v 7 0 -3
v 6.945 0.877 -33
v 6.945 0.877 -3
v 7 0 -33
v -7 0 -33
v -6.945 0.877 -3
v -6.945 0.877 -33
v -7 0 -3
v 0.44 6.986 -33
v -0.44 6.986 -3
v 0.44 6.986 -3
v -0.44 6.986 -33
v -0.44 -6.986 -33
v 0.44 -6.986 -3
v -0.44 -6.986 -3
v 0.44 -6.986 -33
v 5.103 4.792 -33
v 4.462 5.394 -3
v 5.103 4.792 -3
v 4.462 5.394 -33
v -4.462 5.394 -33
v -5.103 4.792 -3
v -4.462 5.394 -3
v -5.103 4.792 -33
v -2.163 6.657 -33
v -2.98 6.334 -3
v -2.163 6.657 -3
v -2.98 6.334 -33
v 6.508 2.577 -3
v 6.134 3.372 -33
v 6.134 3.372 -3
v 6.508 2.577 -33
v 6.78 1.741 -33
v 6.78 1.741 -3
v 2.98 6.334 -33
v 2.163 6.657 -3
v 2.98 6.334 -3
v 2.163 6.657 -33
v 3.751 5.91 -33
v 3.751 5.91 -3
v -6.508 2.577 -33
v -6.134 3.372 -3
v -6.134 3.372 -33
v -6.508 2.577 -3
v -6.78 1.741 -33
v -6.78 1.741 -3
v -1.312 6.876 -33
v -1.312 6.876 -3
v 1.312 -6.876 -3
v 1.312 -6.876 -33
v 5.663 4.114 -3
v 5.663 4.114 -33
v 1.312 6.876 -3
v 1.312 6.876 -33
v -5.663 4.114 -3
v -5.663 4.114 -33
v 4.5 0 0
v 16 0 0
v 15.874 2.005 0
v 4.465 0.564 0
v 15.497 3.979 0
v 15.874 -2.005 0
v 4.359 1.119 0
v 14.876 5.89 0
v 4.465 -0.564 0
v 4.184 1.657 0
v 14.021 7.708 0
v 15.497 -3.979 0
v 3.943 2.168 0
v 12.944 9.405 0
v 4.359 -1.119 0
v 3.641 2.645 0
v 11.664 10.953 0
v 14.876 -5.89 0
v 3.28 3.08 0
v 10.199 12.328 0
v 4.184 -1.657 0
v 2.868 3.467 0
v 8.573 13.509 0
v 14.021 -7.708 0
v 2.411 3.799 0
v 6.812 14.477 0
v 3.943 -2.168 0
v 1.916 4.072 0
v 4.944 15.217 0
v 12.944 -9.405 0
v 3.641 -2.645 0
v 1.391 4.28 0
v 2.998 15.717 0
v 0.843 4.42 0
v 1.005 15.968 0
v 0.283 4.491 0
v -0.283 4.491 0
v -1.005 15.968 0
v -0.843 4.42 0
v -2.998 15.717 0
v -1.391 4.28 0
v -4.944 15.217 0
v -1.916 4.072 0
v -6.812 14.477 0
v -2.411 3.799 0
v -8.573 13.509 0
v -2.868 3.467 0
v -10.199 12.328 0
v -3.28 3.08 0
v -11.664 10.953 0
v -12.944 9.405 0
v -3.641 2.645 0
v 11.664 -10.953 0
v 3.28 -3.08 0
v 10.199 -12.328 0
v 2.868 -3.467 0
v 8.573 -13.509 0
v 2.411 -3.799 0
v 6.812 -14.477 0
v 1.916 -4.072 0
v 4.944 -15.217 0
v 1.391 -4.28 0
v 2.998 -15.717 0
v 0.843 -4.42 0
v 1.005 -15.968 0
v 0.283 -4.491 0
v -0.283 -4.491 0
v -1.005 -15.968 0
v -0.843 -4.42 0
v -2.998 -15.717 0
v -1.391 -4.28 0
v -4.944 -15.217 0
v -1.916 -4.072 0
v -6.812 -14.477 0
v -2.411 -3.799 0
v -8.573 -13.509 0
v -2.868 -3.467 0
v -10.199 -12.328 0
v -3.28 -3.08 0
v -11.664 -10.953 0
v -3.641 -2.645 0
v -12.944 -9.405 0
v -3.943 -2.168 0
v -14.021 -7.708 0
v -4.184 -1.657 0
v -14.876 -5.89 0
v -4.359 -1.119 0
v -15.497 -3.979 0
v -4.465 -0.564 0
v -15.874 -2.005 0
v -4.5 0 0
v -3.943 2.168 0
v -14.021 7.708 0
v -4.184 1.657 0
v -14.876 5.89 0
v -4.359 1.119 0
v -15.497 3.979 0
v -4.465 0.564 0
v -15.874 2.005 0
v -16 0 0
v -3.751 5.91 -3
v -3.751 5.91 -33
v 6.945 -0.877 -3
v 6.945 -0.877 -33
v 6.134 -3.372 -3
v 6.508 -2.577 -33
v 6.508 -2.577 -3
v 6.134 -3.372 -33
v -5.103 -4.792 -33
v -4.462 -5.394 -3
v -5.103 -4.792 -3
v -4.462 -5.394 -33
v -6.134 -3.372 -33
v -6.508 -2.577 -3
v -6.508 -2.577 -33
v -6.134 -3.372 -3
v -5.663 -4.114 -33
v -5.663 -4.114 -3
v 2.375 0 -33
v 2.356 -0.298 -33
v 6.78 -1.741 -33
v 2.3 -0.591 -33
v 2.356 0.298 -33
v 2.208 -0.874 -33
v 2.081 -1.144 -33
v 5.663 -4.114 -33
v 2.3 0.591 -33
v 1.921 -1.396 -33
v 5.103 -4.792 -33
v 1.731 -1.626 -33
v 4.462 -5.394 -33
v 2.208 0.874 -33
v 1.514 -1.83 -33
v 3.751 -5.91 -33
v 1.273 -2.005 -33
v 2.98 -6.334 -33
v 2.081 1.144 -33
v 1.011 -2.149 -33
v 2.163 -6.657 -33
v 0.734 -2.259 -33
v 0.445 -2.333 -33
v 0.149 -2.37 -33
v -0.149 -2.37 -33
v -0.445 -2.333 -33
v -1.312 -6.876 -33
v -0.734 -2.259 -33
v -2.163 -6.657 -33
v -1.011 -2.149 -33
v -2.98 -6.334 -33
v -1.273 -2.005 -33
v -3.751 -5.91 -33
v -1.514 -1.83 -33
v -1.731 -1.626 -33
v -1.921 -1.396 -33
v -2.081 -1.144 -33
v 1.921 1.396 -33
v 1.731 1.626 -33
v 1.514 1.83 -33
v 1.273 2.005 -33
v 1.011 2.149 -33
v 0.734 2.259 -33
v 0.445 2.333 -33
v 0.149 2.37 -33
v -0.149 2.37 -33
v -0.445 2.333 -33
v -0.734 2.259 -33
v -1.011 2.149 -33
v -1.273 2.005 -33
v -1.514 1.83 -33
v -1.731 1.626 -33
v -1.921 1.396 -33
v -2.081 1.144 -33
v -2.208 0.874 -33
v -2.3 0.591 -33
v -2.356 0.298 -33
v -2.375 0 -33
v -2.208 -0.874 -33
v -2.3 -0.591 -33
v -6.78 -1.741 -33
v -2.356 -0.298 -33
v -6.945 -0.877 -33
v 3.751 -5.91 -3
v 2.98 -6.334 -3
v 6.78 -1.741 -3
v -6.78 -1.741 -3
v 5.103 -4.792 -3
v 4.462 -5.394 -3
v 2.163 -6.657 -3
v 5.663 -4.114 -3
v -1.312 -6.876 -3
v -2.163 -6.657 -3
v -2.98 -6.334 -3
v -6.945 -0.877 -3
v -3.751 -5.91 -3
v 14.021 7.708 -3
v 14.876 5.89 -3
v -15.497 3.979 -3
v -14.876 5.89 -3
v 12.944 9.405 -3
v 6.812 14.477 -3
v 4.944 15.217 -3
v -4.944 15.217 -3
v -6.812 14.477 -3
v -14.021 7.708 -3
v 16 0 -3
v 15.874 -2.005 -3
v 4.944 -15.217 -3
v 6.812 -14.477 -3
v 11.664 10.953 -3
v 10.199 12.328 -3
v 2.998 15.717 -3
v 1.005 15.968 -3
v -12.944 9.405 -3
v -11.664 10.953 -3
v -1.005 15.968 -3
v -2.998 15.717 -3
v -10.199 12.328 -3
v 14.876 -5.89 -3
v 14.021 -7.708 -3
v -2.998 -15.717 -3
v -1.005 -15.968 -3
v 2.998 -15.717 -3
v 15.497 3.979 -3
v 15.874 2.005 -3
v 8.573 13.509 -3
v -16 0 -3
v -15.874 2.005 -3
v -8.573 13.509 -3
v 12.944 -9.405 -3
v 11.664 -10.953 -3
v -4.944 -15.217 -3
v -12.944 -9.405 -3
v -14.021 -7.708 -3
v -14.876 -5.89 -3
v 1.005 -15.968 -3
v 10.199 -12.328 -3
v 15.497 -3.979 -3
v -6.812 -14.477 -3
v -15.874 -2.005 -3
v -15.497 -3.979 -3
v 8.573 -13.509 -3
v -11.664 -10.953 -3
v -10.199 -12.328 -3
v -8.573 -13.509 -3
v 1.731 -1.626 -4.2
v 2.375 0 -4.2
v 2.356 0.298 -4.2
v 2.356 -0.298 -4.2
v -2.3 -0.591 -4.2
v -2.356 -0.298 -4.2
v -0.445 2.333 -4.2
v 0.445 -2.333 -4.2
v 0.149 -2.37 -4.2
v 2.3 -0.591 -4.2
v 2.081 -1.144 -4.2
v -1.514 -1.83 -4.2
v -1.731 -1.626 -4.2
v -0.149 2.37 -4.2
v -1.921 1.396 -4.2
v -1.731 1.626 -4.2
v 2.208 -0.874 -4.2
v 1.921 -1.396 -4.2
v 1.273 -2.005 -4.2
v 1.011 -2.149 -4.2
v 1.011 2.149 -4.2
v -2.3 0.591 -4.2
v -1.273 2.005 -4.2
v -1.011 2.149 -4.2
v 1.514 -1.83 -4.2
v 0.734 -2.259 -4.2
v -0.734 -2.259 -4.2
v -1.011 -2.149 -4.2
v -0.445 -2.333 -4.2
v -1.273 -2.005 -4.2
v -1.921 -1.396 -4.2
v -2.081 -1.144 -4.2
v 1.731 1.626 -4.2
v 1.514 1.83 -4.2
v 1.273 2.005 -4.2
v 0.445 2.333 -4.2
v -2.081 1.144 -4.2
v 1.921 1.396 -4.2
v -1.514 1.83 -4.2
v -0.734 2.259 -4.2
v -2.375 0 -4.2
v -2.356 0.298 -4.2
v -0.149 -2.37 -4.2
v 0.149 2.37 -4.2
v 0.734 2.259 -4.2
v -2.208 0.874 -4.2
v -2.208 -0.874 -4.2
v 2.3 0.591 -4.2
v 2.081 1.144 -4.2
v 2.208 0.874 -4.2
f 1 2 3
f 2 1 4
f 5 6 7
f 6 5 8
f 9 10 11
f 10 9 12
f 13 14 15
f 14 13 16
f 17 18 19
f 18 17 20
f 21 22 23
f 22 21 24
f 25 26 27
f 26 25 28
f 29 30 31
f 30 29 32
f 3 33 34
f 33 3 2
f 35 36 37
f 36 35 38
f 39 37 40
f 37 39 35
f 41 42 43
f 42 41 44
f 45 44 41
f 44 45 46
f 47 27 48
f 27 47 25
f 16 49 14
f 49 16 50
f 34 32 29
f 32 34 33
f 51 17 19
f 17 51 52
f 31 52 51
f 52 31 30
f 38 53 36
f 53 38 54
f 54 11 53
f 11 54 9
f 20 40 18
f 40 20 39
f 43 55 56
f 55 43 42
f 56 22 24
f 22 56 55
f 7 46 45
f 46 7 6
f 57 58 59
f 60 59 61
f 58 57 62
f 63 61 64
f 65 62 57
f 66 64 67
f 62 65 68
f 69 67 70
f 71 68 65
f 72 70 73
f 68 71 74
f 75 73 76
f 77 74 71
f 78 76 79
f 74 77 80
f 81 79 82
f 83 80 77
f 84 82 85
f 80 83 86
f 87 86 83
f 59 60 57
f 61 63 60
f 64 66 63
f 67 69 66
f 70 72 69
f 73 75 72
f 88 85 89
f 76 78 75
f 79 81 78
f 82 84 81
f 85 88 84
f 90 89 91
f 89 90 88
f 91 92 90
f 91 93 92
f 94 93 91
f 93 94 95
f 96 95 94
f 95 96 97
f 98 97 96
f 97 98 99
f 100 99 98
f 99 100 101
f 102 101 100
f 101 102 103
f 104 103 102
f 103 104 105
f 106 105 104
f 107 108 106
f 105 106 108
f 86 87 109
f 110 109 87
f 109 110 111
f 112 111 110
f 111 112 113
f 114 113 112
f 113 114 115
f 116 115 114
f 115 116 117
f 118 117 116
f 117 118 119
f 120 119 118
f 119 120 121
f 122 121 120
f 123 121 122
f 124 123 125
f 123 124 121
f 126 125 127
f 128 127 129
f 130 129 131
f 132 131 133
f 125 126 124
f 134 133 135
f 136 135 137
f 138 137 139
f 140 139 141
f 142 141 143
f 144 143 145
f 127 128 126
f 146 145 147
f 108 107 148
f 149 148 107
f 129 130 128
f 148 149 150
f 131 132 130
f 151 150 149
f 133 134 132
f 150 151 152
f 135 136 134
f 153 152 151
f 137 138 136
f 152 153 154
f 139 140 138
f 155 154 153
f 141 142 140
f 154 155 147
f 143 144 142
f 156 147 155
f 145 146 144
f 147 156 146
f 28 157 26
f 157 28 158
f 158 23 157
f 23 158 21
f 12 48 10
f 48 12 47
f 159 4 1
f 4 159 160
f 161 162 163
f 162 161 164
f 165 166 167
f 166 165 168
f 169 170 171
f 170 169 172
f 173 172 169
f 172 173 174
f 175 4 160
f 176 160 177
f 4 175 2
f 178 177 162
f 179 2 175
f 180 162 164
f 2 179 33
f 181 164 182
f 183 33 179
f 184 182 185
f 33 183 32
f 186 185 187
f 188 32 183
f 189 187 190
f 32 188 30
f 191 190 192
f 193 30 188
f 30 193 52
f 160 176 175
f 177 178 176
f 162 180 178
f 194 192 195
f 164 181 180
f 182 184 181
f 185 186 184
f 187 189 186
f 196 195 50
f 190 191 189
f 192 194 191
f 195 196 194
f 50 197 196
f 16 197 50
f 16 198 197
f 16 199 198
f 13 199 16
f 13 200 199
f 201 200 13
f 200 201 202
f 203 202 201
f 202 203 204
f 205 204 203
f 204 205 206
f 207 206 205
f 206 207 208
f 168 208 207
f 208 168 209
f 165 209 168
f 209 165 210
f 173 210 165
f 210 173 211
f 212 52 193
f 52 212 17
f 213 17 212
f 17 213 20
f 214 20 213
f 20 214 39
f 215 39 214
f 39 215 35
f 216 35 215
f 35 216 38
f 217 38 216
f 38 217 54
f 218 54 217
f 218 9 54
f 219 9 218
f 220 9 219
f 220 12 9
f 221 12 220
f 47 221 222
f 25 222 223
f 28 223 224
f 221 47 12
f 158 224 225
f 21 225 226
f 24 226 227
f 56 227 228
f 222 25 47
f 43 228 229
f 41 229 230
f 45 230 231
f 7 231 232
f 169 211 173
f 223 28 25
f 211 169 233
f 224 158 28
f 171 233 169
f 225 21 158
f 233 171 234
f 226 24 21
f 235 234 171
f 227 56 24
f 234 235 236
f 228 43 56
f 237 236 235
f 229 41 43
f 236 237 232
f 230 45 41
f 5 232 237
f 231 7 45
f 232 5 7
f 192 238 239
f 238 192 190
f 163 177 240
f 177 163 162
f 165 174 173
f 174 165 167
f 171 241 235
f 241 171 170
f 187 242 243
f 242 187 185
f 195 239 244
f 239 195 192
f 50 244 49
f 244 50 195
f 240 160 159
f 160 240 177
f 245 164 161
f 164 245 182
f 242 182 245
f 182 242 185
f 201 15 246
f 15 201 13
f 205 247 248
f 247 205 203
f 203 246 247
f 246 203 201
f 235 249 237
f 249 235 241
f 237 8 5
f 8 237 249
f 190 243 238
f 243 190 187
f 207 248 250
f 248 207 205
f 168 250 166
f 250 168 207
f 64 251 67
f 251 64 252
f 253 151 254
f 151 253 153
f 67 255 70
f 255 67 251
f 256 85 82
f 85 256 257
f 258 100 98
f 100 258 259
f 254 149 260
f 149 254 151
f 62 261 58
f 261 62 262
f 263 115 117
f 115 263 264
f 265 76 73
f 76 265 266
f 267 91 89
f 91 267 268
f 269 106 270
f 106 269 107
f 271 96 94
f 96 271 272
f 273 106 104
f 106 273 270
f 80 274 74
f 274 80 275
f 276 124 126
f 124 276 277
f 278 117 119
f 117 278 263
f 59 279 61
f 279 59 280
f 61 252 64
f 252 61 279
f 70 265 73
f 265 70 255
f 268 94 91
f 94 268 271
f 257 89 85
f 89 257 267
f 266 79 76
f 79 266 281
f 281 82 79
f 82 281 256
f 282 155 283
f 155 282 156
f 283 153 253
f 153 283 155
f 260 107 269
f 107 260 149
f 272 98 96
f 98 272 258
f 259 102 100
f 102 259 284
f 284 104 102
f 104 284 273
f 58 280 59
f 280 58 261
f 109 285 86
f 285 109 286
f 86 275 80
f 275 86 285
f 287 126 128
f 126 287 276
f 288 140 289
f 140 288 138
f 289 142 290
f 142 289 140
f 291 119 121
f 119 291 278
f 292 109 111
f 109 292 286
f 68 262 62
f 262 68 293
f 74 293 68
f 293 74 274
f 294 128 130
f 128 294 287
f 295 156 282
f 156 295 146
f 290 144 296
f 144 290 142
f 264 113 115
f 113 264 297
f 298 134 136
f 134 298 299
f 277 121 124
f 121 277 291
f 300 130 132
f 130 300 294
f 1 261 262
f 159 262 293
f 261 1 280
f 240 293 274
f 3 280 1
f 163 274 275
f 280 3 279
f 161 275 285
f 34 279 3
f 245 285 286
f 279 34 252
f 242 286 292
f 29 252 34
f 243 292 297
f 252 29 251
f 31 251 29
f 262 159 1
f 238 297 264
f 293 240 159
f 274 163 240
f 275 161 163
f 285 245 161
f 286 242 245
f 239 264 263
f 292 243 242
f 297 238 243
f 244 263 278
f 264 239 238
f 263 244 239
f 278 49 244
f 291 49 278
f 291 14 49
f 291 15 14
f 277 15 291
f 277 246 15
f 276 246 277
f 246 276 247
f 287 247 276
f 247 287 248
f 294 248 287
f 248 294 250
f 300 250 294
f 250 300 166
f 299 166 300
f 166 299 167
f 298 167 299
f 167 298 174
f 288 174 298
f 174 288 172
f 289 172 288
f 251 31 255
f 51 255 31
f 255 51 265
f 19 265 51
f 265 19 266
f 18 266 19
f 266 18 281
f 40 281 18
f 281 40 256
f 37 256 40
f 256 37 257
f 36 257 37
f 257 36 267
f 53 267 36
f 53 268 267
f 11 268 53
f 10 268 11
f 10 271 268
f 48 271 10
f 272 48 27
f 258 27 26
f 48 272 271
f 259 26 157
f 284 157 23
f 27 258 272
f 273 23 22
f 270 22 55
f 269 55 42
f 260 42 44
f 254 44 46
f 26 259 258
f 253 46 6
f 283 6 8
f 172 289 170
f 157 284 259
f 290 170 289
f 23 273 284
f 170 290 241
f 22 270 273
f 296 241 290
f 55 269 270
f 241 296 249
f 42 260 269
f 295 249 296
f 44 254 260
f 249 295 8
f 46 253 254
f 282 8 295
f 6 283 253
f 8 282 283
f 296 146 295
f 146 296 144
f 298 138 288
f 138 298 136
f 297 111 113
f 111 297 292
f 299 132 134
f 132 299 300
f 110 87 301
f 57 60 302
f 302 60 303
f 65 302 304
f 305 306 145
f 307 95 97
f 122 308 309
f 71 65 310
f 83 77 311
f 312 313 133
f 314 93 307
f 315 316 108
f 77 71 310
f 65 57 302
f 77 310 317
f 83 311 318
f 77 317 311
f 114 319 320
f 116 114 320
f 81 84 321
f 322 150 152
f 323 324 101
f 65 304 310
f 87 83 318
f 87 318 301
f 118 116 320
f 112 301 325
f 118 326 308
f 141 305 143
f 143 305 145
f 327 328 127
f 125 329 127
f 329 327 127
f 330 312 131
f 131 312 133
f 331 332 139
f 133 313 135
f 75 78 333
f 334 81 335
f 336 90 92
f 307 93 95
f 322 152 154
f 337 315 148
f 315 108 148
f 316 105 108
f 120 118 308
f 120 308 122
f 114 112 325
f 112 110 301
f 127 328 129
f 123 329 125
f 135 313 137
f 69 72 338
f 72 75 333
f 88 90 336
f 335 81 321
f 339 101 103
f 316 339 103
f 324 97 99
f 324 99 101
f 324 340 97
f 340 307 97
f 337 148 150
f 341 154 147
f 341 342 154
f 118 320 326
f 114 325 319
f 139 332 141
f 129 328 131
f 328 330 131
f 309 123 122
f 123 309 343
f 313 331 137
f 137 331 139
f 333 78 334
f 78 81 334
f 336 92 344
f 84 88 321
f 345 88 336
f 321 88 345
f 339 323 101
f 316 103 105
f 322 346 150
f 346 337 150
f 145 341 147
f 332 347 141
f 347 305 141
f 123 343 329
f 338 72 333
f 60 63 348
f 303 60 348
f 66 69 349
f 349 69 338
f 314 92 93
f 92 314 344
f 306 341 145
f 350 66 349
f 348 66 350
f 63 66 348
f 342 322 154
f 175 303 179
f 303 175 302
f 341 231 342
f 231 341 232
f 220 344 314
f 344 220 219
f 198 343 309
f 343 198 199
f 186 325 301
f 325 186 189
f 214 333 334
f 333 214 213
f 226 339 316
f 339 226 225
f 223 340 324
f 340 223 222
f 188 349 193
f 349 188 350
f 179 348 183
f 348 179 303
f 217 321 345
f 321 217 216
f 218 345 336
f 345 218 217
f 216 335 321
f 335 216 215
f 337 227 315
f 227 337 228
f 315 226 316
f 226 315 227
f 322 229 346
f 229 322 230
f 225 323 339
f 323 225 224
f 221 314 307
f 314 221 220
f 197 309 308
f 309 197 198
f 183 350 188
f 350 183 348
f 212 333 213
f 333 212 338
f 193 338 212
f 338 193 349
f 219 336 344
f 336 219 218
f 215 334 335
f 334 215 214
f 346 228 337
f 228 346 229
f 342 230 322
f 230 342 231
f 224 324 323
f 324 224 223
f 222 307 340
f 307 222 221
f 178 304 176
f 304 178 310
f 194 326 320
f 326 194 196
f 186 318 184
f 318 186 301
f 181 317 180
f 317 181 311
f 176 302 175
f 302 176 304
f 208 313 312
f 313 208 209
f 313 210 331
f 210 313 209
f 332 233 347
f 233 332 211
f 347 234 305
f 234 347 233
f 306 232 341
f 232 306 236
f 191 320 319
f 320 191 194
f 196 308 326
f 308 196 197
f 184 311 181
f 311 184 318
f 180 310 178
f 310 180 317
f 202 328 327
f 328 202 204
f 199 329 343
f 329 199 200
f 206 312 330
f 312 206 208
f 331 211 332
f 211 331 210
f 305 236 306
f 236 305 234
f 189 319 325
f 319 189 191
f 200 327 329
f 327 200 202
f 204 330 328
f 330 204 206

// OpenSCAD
$fn = 50;


difference() {
	union() {
		translate(v = [0, 0, -33.0000000000]) {
			cylinder(h = 33, r = 7.0000000000);
		}
		translate(v = [0, 0, -3.0000000000]) {
			cylinder(h = 3, r = 16.0000000000);
		}
	}
	union() {
		translate(v = [0, 0, 0]) {
			rotate(a = [0, 0, 0]) {
				difference() {
					union() {
						#translate(v = [0, 0, -33.0000000000]) {
							cylinder(h = 33, r = 2.2500000000);
						}
						#translate(v = [0, 0, -4.2000000000]) {
							cylinder(h = 4.2000000000, r1 = 2.3750000000, r2 = 4.5000000000);
						}
						#translate(v = [0, 0, -33.0000000000]) {
							cylinder(h = 33, r = 2.3750000000);
						}
						#translate(v = [0, 0, -33.0000000000]) {
							cylinder(h = 33, r = 2.2500000000);
						}
					}
					union();
				}
			}
		}
	}
}
